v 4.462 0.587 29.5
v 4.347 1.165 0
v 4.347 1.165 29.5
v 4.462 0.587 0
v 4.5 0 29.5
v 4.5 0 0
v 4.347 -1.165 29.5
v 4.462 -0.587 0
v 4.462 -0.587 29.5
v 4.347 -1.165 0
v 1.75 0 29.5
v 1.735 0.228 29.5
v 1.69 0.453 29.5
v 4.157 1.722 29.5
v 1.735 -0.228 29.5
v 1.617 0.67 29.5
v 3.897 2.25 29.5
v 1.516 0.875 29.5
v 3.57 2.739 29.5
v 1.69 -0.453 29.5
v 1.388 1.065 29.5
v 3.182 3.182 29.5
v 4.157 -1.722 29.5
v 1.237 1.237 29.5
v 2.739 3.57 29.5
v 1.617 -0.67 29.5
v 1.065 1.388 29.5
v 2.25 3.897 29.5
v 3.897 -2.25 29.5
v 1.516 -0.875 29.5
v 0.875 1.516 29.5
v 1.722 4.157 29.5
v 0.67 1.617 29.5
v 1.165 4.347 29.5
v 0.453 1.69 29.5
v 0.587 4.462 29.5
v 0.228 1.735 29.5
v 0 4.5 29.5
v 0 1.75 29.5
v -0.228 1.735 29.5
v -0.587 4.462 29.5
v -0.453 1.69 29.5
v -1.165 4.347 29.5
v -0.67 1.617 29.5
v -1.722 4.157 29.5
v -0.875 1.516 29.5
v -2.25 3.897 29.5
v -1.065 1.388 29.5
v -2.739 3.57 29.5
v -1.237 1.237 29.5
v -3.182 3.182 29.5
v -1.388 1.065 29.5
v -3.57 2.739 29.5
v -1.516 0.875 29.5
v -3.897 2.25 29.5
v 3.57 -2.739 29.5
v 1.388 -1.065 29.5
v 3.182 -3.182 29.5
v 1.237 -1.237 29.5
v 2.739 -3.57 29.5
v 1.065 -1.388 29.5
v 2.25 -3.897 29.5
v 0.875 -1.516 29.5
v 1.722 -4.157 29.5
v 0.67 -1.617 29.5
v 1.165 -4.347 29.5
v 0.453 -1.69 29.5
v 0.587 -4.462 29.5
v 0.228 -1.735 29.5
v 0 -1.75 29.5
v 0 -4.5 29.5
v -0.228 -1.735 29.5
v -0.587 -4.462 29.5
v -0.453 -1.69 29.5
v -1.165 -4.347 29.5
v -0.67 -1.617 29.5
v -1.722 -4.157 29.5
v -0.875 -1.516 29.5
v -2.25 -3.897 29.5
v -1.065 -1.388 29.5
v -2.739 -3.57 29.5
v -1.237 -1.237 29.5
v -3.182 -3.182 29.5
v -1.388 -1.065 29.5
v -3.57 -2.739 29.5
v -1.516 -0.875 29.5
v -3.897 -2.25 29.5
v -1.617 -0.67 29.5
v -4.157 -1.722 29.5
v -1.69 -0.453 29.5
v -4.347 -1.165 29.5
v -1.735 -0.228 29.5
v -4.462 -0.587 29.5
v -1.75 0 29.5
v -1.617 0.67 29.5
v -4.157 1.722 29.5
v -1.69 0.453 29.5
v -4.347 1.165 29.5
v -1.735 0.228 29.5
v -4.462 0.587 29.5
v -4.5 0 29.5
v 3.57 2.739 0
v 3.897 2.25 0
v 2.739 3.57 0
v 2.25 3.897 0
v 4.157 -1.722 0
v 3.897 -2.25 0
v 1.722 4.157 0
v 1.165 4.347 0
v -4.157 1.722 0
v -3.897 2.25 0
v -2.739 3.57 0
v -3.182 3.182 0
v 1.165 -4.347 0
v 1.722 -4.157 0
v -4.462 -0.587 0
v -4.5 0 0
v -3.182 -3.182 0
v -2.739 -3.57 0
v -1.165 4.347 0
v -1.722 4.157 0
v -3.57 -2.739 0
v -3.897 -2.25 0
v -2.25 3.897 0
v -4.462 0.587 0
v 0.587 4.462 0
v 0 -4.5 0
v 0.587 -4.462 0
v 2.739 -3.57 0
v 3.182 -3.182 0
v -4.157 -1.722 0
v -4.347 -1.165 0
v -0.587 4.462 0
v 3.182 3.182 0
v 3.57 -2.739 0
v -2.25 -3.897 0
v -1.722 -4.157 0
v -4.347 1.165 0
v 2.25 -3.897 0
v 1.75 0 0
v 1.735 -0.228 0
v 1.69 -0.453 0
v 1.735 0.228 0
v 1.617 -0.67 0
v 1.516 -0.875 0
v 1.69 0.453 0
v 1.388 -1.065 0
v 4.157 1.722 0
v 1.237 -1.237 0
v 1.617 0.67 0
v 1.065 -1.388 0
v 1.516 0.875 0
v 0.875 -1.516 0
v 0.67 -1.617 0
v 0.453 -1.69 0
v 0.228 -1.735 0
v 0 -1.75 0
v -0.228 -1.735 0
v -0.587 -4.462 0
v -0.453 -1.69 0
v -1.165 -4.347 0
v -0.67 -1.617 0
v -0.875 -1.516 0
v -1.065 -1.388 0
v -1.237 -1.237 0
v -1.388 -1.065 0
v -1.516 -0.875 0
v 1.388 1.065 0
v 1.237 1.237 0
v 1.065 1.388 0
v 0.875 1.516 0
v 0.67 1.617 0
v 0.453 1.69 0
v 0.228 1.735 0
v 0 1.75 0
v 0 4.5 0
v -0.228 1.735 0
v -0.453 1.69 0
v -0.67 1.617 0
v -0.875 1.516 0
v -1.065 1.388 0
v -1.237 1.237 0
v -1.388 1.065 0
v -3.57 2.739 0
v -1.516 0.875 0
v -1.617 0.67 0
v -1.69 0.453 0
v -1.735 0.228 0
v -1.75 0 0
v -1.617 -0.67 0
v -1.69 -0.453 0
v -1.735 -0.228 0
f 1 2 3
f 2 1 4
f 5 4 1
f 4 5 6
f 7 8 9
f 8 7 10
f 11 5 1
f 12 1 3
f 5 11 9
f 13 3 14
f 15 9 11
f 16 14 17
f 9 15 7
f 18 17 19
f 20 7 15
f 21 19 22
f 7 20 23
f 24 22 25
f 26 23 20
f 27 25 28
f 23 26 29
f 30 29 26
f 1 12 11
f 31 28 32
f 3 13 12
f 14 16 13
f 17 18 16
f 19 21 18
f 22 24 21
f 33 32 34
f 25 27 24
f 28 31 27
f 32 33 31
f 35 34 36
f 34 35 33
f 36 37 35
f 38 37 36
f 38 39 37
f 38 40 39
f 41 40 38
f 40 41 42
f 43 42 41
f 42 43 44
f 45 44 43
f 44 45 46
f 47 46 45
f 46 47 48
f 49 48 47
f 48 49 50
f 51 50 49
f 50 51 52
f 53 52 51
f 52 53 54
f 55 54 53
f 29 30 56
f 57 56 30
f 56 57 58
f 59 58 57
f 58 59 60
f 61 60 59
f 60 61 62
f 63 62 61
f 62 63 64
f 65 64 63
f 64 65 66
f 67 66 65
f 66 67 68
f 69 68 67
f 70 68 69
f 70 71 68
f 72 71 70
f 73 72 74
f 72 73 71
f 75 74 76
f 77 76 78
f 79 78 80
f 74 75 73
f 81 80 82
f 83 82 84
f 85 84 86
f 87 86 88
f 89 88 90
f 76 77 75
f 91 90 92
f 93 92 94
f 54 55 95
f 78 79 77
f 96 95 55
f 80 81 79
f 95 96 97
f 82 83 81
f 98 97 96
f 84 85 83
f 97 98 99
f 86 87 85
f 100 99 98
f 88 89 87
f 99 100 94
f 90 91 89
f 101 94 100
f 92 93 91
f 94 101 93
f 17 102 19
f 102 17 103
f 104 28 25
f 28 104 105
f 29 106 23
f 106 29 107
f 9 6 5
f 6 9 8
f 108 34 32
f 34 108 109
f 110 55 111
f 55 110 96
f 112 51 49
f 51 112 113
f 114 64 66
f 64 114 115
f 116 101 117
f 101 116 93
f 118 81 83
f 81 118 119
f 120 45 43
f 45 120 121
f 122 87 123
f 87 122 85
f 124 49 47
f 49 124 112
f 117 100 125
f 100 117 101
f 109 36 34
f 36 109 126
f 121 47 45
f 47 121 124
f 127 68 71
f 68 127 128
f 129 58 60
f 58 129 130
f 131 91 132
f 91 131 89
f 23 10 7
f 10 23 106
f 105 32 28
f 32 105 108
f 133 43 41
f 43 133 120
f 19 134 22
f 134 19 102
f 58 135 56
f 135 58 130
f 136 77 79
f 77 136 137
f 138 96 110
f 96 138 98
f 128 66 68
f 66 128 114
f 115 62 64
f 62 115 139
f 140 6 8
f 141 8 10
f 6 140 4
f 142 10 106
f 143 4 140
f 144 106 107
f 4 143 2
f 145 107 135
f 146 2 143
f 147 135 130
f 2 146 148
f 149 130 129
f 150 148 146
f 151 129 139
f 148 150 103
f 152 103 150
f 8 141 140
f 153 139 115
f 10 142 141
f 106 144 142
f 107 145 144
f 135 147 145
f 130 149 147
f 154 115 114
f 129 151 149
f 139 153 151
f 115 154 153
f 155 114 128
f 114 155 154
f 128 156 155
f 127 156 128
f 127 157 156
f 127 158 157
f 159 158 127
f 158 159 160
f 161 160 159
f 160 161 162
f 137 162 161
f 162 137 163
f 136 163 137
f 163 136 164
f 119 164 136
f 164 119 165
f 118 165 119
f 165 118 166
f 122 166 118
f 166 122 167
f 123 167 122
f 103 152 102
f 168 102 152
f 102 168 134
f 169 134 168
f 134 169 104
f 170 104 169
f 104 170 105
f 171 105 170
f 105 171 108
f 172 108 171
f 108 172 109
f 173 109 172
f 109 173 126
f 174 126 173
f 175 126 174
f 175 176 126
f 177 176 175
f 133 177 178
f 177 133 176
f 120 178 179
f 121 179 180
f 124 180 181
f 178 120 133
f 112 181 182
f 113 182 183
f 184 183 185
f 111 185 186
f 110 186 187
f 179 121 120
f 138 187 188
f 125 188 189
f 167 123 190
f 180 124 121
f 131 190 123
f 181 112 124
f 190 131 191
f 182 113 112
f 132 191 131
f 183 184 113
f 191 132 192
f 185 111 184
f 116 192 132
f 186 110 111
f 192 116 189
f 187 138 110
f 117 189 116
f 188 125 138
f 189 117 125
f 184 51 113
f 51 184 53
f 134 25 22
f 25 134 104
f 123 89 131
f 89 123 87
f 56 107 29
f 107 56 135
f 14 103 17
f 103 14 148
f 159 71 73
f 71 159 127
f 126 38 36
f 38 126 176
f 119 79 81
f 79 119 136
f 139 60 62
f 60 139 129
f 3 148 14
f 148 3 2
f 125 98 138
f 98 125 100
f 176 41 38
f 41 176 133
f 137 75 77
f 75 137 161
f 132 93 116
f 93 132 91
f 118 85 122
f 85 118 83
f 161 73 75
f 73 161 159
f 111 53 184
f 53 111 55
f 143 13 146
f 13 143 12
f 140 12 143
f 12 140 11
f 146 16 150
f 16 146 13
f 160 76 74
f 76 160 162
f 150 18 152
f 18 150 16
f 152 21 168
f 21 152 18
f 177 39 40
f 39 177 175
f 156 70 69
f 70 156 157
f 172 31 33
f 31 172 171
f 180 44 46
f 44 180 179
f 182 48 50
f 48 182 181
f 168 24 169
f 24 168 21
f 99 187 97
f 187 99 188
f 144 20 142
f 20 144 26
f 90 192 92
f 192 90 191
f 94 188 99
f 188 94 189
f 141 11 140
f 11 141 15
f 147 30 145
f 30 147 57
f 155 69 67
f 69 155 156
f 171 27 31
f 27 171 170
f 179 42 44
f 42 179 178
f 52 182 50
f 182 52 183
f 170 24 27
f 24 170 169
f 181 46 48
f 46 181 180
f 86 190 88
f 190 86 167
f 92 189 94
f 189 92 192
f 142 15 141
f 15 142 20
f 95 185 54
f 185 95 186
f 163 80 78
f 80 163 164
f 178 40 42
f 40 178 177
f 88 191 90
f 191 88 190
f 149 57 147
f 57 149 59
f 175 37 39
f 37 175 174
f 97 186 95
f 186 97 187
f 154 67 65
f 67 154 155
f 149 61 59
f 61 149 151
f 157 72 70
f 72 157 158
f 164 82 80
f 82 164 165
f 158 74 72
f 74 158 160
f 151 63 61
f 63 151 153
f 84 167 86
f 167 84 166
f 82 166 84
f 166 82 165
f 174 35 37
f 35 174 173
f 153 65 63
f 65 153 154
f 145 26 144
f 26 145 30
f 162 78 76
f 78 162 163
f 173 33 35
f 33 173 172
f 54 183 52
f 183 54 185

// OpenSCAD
// file: parameters.scad
// =============================================================================
// Gen-BV — nightly 2026-10-10 (physics_scorer, honest magpylib watts)
// Fewer, wider-spaced poles: 6 Ø20 per rotor (12 of the 16) on an R57 ring over nine 35.2° bobbins (r 39–74 mm, 15.7 mm build). Wider pole pitch means less pole-to-pole leakage and bigger coils, but the electrical frequency drops 25 % and 4 Ø20 sit idle; diametric Ø5 assists lowered the score here, so none are fitted. The scorer puts it at about 62 % of Gen-BR.
// Clocking 0 deg (magnets N facing S) + D-flat keyed bore + index notch + flip-symmetric hole map.
// Windable 2-piece bobbin; turns = physics_scorer turns_fit; copper only between flanges.
// Steel back-iron: 2× Ø142 × 4.76 mm (3/16") mild-steel discs (steel_backiron_disc.dxf); magnets sit ON the steel
// (through-pockets) -> score with --back-iron. Night 2026-10-10.
// =============================================================================
topology            = "dual_rotor";

// --- Wire / winding (physics_scorer winding-fit) -------------------------------
wire_awg            = 26;
wire_od             = 0.45;     // insulated OD mm (bare 0.405)
fill_realistic      = 0.65;     // insulated-wire area / window (DENSE layered wind with a jig; scorer cap 0.65)
turns               = 518;       // = physics_scorer turns_fit (do NOT raise)
coil_former_type    = "bobbin";
coil_core_inset     = 15.66;     // radial copper build: hub = copper boundary inset by this
wind_build_axial    = 0.0;      // nothing proud of the flanges
wind_build_radial   = 0.0;

// --- Bobbin (base + lid) ---------------------------------------------------------
coil_id_r           = 39.00;    // copper boundary sector
coil_od_r           = 74.00;
span_deg            = 35.15;    // = pitch - 2*asin((wall+0.85)/coil_id_r) -> >=1.2 mm stator web
former_web          = 8.10;     // copper height between flanges (TALL copper: steel keeps Bz up)
flange_t            = 0.80;     // >= 0.8 mm FDM wall rule (tall winds push on the flanges)
wall                = 0.80;     // flange lip beyond copper
former_bare_h       = former_web + 2 * flange_t;
coil_envelope_h     = former_bare_h + 2 * wind_build_axial;
tab_w               = 7.0;
tab_len             = 7.0;
tab_h               = former_bare_h / 2;
pin_d               = 1.9;      // 1.75 mm filament locating pin
coil_mount_r        = coil_od_r + 0.2 + 4.0;
lead_y              = 1.6;
lead_slot_w         = 0.9;
lead_groove_d       = 0.6;

// --- Gap -------------------------------------------------------------------------
run_clear           = 0.50;     // rotor face -> flange
gap_spacer_h        = run_clear + wind_build_axial;
m2m                 = coil_envelope_h + 2 * run_clear;   // rotor face to rotor face (= gap_sleeve length)

// --- Stator ----------------------------------------------------------------------
coil_stations       = 9;
bay_clear           = 0.25;
stator_thick        = former_bare_h;                        // bobbins flush both faces
stator_od           = 166;
shaft_clear_stator  = 14.0;     // stator is static; gap sleeve OD 12 spins inside

// --- Rotor(s) --------------------------------------------------------------------
magnet_Br           = 1.43;     // N52
magnet_d_large      = 20.0;
magnet_h_large      = 5.0;      // one O20x5 per pocket
magnet_h_small      = 5.0;      // unused: no O5 pockets in this kit
halbach_magnetisation = "none";  // NO O5 assist magnets in this kit (scan: they lower the 4-pole score)
rotor_b_same_axis   = true;     // same-index magnets share one axis: N faces S across the gap
large_pocket_d      = 20.3;
small_pocket_d      = 5.3;
pocket_h            = 5.00;     // THROUGH the carrier: magnet back face sits on the steel disc (FLUSH seat: carrier = magnet height, magnet face level with the rotor face)
large_n             = 6;
R_large             = 57.0;
small_r_list        = [];       // no O5 pockets
carrier_od          = 142.0;
carrier_thick       = pocket_h;
hub_h               = 12.0;     // > steel_t + insert: radial set-screw clears the steel
hub_od              = 24.0;     // slim hub so the M4 brace rods fit at R~18 inside the coil ring
hub_insert_d        = 4.0;      // M3 heat-set insert, radial, bears on the D-flat
rotor_b_offset_deg  = 0.0;      // CLOCKING: magnets directly opposite
shaft_key           = "dflat";
dflat_depth         = 0.5;      // 8 mm shaft with 0.5 mm flat (7.5 across flat)
index_notch_d       = 3.0;

// --- Steel back-iron (buyable laser-cut) -------------------------------------------
steel_t             = 4.76;      // mild steel thickness (image method ignores it; sized from steel_flux.py so the return path stays well below saturation)
steel_center_hole   = 26.0;     // slips over the rotor hub (OD 24)
steel_od            = carrier_od;   // steel disc OD = rotor carrier OD

// --- Modular MAX interface ----------------------------------------------------------
shaft_bore          = 8.35;
dflat_x             = 4.0 - dflat_depth + (shaft_bore - 8.0) / 2;
bearing_d           = 21.85;
bearing_h           = 7.2;
m3_clear            = 3.5;
bolt_r_inner        = 30.0;     // M3 steel-disc clamp bolts (inside the magnet ring)
bolt_n_inner        = 4;
bolt_inner_angles   = [0, 90, 180, 270];
bolt_r_outer        = 66.0;     // second M3 steel-disc clamp ring
bolt_outer_angles   = [15, 165, 195, 345];
flange_bolt_r       = 77.0;     // frame rods: OUTSIDE the rotor OD (rotors spin inside them)
flange_bolt_n       = 9;
flange_bolt_offset  = 20.00;    // between coil stations -> never cuts a lead groove/tab
brace_r             = 18.0;
brace_d             = 4.3;      // temporary M4 jack rods (assembly only)
brace_n             = 4;
brace_angles        = [45, 135, 225, 315];          // flip-symmetric

spacer_pad_od       = 14.0;
spacer_pad_id       = m3_clear;
endbell_od          = 164.0;
endbell_thick       = 8.0;
endbell_shaft_clear = 10.0;
collar_h            = 10.0;
standoff_od         = 9.0;
frame_standoff_h    = run_clear + carrier_thick + hub_h + collar_h + 2.0;
sleeve_od           = 12.0;
plate_max_mm        = 410;

$fn = 64;
// main file
// Gen-BV — frame standoff tube between stator and an endbell, on each M3 frame rod (outside rotor OD).
// Print x18. Height = frame_standoff_h (rotor + steel + hub + collar + running clearance).
include <parameters.scad>;
$fn = 48;
difference() {
    cylinder(d=standoff_od, h=frame_standoff_h);
    translate([0, 0, -0.1]) cylinder(d=m3_clear, h=frame_standoff_h + 0.2);
}
